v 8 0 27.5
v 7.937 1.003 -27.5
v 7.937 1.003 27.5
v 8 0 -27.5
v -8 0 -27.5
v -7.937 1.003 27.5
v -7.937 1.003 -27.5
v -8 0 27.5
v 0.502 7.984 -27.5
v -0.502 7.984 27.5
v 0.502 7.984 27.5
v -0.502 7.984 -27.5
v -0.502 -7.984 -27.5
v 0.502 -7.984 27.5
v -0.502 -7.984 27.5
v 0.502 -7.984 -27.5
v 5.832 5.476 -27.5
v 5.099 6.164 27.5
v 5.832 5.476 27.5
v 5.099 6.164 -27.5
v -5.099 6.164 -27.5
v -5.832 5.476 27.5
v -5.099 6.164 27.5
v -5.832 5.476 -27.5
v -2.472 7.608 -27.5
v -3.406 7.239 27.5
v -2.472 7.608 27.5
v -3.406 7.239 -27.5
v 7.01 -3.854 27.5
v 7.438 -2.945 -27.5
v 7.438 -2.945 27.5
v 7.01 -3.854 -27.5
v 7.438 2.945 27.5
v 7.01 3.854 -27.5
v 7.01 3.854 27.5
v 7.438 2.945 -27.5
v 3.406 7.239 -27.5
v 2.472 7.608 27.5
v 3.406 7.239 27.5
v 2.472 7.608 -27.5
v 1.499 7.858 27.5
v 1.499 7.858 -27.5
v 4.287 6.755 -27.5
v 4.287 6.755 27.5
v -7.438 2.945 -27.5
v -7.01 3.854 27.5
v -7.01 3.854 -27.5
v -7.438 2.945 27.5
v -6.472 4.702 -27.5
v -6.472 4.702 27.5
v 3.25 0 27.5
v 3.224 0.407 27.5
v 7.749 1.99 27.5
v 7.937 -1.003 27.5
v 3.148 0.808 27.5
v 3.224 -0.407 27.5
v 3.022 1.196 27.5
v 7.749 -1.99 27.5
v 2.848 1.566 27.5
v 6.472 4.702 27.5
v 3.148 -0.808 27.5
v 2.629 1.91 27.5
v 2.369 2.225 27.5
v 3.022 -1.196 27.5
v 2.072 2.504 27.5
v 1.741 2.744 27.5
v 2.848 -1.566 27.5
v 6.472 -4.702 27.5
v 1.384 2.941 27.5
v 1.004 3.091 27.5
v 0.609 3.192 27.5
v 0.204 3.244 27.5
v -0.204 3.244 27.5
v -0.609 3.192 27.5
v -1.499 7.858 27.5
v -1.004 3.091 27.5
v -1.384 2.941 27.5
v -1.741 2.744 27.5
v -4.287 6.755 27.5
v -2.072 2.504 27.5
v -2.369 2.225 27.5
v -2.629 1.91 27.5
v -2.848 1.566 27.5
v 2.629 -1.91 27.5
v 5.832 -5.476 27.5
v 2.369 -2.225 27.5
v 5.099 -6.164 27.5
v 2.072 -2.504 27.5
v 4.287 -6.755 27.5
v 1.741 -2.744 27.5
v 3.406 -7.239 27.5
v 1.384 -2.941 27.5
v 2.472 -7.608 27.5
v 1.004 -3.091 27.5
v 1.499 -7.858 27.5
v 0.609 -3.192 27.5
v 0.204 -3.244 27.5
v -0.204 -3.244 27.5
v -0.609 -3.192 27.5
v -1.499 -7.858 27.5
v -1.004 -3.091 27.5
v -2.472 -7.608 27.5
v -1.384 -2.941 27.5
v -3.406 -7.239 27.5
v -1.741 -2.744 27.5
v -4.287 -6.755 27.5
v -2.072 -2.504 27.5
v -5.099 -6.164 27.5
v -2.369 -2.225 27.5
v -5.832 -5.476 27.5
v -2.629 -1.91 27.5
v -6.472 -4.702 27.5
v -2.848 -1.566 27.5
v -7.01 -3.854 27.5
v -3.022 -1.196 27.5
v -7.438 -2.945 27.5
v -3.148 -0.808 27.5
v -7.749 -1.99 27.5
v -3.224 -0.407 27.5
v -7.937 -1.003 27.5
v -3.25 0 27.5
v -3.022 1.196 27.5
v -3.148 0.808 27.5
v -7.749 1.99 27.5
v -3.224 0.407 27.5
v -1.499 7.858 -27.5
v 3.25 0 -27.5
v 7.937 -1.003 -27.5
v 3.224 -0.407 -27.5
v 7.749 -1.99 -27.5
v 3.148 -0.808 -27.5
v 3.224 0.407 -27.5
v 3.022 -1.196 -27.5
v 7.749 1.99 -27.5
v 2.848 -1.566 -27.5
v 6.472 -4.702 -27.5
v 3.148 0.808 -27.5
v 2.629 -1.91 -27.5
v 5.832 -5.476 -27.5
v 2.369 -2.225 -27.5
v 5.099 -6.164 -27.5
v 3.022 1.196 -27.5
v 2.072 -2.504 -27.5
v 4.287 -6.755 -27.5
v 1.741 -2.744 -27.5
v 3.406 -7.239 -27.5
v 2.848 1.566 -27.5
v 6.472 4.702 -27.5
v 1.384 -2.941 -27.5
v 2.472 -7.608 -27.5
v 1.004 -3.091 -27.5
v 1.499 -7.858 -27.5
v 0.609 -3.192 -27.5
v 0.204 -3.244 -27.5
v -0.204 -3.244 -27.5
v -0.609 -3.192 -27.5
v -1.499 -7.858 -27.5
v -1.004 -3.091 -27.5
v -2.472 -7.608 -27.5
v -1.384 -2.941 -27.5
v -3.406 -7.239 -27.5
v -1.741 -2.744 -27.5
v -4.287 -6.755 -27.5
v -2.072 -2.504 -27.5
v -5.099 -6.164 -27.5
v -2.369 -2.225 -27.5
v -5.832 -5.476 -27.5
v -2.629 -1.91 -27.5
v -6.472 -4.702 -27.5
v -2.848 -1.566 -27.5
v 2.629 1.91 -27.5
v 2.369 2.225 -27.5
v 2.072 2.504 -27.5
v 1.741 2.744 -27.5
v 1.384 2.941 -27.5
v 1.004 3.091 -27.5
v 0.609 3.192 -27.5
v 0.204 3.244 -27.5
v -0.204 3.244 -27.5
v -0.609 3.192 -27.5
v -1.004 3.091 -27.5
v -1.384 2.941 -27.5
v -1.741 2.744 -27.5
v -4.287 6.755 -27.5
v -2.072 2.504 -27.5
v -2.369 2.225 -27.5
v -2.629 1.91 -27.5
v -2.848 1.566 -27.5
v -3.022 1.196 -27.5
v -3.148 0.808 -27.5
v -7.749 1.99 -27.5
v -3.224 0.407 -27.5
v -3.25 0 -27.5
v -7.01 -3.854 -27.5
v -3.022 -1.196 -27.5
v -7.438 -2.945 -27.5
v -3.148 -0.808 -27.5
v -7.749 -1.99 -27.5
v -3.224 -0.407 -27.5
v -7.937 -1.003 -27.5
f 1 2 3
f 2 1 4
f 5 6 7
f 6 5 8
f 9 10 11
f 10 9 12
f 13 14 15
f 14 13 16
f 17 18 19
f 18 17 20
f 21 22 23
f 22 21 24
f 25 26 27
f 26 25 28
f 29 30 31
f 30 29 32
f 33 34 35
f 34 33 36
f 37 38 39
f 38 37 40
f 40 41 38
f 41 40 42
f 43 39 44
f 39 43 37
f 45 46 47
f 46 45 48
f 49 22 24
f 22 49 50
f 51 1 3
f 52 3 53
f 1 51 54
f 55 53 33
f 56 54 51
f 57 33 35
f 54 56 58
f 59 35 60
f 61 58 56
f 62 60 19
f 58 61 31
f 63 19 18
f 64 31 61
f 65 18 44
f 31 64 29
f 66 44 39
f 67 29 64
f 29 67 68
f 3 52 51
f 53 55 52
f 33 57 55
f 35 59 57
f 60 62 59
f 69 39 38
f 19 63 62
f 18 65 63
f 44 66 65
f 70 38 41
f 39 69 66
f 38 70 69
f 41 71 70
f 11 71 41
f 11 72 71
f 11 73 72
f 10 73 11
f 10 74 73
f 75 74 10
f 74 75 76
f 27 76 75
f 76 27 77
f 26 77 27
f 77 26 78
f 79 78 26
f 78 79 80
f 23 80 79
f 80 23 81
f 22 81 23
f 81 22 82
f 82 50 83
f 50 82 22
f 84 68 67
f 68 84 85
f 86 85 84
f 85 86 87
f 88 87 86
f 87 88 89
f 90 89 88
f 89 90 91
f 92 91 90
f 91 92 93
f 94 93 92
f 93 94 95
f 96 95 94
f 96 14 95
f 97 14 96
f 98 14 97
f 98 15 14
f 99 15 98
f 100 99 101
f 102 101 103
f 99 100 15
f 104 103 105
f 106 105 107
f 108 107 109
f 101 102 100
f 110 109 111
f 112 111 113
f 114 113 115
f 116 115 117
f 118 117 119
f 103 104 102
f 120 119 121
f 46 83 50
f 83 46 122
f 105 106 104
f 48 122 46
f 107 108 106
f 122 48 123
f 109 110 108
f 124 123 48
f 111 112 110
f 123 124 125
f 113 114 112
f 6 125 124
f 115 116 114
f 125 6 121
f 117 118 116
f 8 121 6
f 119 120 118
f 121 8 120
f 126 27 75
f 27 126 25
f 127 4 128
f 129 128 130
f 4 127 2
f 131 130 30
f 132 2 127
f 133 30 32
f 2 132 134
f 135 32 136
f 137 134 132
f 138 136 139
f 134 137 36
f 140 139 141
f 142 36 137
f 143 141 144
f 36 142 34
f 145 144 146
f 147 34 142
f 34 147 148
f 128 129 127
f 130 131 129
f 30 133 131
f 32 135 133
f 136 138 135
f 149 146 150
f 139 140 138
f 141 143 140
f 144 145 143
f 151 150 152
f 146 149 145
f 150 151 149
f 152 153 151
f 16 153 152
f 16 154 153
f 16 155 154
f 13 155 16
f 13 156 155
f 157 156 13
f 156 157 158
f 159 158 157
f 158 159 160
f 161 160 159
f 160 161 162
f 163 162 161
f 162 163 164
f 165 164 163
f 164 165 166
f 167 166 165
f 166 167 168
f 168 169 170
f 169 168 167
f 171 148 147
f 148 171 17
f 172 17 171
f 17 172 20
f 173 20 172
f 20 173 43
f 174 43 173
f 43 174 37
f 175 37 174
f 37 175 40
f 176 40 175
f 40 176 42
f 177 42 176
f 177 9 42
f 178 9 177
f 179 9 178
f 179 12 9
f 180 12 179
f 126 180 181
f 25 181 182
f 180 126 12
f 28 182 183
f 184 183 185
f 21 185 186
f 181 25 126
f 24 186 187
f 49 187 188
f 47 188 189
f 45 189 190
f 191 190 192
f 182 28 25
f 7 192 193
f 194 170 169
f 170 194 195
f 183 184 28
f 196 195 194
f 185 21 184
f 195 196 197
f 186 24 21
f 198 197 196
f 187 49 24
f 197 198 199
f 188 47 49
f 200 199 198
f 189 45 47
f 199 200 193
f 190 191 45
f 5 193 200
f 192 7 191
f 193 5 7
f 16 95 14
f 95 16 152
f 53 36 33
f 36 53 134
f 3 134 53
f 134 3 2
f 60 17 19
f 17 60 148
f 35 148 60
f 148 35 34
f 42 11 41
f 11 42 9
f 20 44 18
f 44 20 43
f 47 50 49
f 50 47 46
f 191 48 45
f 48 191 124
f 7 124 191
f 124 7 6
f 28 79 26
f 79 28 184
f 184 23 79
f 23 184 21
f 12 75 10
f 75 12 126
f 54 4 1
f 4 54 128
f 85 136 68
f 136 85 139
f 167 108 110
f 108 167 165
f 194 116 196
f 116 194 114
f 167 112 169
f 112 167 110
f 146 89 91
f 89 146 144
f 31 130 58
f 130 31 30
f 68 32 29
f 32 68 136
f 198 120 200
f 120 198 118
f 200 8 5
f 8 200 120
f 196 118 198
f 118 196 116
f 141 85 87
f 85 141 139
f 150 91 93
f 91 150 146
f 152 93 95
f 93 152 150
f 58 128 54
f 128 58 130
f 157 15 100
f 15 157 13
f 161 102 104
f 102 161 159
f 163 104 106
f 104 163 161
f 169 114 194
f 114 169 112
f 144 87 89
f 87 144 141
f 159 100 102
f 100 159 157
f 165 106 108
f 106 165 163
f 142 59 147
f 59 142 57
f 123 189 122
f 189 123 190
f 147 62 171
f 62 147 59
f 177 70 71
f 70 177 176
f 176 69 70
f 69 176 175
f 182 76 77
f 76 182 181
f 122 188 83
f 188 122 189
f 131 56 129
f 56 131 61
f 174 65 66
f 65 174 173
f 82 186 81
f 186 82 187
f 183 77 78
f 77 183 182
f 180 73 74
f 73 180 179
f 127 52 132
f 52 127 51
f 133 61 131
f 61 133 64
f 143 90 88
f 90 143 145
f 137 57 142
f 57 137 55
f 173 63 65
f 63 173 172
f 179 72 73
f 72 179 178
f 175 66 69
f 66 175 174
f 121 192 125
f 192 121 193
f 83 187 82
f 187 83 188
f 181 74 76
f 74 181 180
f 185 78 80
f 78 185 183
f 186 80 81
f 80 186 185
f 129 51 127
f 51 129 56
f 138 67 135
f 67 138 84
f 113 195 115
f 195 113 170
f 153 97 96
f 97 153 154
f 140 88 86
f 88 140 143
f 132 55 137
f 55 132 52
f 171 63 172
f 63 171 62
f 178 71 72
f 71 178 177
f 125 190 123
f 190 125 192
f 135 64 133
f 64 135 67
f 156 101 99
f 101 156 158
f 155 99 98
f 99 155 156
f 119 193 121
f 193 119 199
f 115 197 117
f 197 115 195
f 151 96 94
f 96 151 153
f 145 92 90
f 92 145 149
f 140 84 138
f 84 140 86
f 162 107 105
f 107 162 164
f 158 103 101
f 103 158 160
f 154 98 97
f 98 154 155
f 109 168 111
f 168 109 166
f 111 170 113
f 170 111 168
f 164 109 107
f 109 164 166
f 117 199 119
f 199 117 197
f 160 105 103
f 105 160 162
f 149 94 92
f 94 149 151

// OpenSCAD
$fn = 50;


difference() {
	union() {
		translate(v = [0, 0, -27.5000000000]) {
			cylinder(h = 55, r = 8.0000000000);
		}
	}
	union() {
		translate(v = [0, 0, -100.0000000000]) {
			cylinder(h = 200, r = 3.2500000000);
		}
	}
}
